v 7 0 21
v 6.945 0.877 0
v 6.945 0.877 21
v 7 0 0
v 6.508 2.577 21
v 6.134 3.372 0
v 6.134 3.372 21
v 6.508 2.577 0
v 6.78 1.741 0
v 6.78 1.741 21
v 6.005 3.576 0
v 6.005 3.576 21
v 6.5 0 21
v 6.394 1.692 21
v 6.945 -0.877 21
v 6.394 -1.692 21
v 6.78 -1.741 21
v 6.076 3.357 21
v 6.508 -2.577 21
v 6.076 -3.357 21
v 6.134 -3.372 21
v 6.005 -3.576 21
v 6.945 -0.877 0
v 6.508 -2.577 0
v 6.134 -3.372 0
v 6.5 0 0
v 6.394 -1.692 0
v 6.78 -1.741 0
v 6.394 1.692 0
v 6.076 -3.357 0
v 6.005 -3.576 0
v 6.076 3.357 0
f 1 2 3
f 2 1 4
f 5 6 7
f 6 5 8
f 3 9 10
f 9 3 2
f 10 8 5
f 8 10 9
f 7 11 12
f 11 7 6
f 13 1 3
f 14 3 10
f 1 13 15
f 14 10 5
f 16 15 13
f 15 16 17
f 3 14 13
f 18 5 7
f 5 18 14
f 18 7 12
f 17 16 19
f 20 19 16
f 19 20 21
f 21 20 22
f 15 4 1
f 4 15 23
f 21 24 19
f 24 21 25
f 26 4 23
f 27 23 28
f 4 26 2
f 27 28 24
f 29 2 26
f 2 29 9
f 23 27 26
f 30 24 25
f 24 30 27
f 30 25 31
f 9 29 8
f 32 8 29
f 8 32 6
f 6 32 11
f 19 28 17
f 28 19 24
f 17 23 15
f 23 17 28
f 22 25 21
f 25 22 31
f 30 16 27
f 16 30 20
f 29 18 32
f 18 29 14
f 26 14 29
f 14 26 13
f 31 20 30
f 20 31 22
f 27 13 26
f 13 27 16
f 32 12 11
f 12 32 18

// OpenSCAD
$fn = 50;


difference() {
	union() {
		cylinder(h = 21, r = 7.0000000000);
		translate(v = [-10.0000000000, 0, 0]) {
			cylinder(h = 21, r = 7.0000000000);
		}
	}
	union() {
		cylinder(h = 21, r = 3.2500000000);
		cylinder(h = 21, r = 1.8000000000);
		cylinder(h = 21, r = 1.8000000000);
		cylinder(h = 21, r = 1.8000000000);
		translate(v = [-14.5000000000, 0, 0]) {
			hull() {
				translate(v = [-3.7500000000, 0.0000000000, 0]) {
					cylinder(h = 21, r = 7.5000000000);
				}
				translate(v = [3.7500000000, 0.0000000000, 0]) {
					cylinder(h = 21, r = 7.5000000000);
				}
				translate(v = [-3.7500000000, -0.0000000000, 0]) {
					cylinder(h = 21, r = 7.5000000000);
				}
				translate(v = [3.7500000000, -0.0000000000, 0]) {
					cylinder(h = 21, r = 7.5000000000);
				}
			}
		}
		translate(v = [-7.0000000000, 0, 0.0000000000]) {
			cylinder(h = 21, r = 13.5000000000);
		}
	}
}
